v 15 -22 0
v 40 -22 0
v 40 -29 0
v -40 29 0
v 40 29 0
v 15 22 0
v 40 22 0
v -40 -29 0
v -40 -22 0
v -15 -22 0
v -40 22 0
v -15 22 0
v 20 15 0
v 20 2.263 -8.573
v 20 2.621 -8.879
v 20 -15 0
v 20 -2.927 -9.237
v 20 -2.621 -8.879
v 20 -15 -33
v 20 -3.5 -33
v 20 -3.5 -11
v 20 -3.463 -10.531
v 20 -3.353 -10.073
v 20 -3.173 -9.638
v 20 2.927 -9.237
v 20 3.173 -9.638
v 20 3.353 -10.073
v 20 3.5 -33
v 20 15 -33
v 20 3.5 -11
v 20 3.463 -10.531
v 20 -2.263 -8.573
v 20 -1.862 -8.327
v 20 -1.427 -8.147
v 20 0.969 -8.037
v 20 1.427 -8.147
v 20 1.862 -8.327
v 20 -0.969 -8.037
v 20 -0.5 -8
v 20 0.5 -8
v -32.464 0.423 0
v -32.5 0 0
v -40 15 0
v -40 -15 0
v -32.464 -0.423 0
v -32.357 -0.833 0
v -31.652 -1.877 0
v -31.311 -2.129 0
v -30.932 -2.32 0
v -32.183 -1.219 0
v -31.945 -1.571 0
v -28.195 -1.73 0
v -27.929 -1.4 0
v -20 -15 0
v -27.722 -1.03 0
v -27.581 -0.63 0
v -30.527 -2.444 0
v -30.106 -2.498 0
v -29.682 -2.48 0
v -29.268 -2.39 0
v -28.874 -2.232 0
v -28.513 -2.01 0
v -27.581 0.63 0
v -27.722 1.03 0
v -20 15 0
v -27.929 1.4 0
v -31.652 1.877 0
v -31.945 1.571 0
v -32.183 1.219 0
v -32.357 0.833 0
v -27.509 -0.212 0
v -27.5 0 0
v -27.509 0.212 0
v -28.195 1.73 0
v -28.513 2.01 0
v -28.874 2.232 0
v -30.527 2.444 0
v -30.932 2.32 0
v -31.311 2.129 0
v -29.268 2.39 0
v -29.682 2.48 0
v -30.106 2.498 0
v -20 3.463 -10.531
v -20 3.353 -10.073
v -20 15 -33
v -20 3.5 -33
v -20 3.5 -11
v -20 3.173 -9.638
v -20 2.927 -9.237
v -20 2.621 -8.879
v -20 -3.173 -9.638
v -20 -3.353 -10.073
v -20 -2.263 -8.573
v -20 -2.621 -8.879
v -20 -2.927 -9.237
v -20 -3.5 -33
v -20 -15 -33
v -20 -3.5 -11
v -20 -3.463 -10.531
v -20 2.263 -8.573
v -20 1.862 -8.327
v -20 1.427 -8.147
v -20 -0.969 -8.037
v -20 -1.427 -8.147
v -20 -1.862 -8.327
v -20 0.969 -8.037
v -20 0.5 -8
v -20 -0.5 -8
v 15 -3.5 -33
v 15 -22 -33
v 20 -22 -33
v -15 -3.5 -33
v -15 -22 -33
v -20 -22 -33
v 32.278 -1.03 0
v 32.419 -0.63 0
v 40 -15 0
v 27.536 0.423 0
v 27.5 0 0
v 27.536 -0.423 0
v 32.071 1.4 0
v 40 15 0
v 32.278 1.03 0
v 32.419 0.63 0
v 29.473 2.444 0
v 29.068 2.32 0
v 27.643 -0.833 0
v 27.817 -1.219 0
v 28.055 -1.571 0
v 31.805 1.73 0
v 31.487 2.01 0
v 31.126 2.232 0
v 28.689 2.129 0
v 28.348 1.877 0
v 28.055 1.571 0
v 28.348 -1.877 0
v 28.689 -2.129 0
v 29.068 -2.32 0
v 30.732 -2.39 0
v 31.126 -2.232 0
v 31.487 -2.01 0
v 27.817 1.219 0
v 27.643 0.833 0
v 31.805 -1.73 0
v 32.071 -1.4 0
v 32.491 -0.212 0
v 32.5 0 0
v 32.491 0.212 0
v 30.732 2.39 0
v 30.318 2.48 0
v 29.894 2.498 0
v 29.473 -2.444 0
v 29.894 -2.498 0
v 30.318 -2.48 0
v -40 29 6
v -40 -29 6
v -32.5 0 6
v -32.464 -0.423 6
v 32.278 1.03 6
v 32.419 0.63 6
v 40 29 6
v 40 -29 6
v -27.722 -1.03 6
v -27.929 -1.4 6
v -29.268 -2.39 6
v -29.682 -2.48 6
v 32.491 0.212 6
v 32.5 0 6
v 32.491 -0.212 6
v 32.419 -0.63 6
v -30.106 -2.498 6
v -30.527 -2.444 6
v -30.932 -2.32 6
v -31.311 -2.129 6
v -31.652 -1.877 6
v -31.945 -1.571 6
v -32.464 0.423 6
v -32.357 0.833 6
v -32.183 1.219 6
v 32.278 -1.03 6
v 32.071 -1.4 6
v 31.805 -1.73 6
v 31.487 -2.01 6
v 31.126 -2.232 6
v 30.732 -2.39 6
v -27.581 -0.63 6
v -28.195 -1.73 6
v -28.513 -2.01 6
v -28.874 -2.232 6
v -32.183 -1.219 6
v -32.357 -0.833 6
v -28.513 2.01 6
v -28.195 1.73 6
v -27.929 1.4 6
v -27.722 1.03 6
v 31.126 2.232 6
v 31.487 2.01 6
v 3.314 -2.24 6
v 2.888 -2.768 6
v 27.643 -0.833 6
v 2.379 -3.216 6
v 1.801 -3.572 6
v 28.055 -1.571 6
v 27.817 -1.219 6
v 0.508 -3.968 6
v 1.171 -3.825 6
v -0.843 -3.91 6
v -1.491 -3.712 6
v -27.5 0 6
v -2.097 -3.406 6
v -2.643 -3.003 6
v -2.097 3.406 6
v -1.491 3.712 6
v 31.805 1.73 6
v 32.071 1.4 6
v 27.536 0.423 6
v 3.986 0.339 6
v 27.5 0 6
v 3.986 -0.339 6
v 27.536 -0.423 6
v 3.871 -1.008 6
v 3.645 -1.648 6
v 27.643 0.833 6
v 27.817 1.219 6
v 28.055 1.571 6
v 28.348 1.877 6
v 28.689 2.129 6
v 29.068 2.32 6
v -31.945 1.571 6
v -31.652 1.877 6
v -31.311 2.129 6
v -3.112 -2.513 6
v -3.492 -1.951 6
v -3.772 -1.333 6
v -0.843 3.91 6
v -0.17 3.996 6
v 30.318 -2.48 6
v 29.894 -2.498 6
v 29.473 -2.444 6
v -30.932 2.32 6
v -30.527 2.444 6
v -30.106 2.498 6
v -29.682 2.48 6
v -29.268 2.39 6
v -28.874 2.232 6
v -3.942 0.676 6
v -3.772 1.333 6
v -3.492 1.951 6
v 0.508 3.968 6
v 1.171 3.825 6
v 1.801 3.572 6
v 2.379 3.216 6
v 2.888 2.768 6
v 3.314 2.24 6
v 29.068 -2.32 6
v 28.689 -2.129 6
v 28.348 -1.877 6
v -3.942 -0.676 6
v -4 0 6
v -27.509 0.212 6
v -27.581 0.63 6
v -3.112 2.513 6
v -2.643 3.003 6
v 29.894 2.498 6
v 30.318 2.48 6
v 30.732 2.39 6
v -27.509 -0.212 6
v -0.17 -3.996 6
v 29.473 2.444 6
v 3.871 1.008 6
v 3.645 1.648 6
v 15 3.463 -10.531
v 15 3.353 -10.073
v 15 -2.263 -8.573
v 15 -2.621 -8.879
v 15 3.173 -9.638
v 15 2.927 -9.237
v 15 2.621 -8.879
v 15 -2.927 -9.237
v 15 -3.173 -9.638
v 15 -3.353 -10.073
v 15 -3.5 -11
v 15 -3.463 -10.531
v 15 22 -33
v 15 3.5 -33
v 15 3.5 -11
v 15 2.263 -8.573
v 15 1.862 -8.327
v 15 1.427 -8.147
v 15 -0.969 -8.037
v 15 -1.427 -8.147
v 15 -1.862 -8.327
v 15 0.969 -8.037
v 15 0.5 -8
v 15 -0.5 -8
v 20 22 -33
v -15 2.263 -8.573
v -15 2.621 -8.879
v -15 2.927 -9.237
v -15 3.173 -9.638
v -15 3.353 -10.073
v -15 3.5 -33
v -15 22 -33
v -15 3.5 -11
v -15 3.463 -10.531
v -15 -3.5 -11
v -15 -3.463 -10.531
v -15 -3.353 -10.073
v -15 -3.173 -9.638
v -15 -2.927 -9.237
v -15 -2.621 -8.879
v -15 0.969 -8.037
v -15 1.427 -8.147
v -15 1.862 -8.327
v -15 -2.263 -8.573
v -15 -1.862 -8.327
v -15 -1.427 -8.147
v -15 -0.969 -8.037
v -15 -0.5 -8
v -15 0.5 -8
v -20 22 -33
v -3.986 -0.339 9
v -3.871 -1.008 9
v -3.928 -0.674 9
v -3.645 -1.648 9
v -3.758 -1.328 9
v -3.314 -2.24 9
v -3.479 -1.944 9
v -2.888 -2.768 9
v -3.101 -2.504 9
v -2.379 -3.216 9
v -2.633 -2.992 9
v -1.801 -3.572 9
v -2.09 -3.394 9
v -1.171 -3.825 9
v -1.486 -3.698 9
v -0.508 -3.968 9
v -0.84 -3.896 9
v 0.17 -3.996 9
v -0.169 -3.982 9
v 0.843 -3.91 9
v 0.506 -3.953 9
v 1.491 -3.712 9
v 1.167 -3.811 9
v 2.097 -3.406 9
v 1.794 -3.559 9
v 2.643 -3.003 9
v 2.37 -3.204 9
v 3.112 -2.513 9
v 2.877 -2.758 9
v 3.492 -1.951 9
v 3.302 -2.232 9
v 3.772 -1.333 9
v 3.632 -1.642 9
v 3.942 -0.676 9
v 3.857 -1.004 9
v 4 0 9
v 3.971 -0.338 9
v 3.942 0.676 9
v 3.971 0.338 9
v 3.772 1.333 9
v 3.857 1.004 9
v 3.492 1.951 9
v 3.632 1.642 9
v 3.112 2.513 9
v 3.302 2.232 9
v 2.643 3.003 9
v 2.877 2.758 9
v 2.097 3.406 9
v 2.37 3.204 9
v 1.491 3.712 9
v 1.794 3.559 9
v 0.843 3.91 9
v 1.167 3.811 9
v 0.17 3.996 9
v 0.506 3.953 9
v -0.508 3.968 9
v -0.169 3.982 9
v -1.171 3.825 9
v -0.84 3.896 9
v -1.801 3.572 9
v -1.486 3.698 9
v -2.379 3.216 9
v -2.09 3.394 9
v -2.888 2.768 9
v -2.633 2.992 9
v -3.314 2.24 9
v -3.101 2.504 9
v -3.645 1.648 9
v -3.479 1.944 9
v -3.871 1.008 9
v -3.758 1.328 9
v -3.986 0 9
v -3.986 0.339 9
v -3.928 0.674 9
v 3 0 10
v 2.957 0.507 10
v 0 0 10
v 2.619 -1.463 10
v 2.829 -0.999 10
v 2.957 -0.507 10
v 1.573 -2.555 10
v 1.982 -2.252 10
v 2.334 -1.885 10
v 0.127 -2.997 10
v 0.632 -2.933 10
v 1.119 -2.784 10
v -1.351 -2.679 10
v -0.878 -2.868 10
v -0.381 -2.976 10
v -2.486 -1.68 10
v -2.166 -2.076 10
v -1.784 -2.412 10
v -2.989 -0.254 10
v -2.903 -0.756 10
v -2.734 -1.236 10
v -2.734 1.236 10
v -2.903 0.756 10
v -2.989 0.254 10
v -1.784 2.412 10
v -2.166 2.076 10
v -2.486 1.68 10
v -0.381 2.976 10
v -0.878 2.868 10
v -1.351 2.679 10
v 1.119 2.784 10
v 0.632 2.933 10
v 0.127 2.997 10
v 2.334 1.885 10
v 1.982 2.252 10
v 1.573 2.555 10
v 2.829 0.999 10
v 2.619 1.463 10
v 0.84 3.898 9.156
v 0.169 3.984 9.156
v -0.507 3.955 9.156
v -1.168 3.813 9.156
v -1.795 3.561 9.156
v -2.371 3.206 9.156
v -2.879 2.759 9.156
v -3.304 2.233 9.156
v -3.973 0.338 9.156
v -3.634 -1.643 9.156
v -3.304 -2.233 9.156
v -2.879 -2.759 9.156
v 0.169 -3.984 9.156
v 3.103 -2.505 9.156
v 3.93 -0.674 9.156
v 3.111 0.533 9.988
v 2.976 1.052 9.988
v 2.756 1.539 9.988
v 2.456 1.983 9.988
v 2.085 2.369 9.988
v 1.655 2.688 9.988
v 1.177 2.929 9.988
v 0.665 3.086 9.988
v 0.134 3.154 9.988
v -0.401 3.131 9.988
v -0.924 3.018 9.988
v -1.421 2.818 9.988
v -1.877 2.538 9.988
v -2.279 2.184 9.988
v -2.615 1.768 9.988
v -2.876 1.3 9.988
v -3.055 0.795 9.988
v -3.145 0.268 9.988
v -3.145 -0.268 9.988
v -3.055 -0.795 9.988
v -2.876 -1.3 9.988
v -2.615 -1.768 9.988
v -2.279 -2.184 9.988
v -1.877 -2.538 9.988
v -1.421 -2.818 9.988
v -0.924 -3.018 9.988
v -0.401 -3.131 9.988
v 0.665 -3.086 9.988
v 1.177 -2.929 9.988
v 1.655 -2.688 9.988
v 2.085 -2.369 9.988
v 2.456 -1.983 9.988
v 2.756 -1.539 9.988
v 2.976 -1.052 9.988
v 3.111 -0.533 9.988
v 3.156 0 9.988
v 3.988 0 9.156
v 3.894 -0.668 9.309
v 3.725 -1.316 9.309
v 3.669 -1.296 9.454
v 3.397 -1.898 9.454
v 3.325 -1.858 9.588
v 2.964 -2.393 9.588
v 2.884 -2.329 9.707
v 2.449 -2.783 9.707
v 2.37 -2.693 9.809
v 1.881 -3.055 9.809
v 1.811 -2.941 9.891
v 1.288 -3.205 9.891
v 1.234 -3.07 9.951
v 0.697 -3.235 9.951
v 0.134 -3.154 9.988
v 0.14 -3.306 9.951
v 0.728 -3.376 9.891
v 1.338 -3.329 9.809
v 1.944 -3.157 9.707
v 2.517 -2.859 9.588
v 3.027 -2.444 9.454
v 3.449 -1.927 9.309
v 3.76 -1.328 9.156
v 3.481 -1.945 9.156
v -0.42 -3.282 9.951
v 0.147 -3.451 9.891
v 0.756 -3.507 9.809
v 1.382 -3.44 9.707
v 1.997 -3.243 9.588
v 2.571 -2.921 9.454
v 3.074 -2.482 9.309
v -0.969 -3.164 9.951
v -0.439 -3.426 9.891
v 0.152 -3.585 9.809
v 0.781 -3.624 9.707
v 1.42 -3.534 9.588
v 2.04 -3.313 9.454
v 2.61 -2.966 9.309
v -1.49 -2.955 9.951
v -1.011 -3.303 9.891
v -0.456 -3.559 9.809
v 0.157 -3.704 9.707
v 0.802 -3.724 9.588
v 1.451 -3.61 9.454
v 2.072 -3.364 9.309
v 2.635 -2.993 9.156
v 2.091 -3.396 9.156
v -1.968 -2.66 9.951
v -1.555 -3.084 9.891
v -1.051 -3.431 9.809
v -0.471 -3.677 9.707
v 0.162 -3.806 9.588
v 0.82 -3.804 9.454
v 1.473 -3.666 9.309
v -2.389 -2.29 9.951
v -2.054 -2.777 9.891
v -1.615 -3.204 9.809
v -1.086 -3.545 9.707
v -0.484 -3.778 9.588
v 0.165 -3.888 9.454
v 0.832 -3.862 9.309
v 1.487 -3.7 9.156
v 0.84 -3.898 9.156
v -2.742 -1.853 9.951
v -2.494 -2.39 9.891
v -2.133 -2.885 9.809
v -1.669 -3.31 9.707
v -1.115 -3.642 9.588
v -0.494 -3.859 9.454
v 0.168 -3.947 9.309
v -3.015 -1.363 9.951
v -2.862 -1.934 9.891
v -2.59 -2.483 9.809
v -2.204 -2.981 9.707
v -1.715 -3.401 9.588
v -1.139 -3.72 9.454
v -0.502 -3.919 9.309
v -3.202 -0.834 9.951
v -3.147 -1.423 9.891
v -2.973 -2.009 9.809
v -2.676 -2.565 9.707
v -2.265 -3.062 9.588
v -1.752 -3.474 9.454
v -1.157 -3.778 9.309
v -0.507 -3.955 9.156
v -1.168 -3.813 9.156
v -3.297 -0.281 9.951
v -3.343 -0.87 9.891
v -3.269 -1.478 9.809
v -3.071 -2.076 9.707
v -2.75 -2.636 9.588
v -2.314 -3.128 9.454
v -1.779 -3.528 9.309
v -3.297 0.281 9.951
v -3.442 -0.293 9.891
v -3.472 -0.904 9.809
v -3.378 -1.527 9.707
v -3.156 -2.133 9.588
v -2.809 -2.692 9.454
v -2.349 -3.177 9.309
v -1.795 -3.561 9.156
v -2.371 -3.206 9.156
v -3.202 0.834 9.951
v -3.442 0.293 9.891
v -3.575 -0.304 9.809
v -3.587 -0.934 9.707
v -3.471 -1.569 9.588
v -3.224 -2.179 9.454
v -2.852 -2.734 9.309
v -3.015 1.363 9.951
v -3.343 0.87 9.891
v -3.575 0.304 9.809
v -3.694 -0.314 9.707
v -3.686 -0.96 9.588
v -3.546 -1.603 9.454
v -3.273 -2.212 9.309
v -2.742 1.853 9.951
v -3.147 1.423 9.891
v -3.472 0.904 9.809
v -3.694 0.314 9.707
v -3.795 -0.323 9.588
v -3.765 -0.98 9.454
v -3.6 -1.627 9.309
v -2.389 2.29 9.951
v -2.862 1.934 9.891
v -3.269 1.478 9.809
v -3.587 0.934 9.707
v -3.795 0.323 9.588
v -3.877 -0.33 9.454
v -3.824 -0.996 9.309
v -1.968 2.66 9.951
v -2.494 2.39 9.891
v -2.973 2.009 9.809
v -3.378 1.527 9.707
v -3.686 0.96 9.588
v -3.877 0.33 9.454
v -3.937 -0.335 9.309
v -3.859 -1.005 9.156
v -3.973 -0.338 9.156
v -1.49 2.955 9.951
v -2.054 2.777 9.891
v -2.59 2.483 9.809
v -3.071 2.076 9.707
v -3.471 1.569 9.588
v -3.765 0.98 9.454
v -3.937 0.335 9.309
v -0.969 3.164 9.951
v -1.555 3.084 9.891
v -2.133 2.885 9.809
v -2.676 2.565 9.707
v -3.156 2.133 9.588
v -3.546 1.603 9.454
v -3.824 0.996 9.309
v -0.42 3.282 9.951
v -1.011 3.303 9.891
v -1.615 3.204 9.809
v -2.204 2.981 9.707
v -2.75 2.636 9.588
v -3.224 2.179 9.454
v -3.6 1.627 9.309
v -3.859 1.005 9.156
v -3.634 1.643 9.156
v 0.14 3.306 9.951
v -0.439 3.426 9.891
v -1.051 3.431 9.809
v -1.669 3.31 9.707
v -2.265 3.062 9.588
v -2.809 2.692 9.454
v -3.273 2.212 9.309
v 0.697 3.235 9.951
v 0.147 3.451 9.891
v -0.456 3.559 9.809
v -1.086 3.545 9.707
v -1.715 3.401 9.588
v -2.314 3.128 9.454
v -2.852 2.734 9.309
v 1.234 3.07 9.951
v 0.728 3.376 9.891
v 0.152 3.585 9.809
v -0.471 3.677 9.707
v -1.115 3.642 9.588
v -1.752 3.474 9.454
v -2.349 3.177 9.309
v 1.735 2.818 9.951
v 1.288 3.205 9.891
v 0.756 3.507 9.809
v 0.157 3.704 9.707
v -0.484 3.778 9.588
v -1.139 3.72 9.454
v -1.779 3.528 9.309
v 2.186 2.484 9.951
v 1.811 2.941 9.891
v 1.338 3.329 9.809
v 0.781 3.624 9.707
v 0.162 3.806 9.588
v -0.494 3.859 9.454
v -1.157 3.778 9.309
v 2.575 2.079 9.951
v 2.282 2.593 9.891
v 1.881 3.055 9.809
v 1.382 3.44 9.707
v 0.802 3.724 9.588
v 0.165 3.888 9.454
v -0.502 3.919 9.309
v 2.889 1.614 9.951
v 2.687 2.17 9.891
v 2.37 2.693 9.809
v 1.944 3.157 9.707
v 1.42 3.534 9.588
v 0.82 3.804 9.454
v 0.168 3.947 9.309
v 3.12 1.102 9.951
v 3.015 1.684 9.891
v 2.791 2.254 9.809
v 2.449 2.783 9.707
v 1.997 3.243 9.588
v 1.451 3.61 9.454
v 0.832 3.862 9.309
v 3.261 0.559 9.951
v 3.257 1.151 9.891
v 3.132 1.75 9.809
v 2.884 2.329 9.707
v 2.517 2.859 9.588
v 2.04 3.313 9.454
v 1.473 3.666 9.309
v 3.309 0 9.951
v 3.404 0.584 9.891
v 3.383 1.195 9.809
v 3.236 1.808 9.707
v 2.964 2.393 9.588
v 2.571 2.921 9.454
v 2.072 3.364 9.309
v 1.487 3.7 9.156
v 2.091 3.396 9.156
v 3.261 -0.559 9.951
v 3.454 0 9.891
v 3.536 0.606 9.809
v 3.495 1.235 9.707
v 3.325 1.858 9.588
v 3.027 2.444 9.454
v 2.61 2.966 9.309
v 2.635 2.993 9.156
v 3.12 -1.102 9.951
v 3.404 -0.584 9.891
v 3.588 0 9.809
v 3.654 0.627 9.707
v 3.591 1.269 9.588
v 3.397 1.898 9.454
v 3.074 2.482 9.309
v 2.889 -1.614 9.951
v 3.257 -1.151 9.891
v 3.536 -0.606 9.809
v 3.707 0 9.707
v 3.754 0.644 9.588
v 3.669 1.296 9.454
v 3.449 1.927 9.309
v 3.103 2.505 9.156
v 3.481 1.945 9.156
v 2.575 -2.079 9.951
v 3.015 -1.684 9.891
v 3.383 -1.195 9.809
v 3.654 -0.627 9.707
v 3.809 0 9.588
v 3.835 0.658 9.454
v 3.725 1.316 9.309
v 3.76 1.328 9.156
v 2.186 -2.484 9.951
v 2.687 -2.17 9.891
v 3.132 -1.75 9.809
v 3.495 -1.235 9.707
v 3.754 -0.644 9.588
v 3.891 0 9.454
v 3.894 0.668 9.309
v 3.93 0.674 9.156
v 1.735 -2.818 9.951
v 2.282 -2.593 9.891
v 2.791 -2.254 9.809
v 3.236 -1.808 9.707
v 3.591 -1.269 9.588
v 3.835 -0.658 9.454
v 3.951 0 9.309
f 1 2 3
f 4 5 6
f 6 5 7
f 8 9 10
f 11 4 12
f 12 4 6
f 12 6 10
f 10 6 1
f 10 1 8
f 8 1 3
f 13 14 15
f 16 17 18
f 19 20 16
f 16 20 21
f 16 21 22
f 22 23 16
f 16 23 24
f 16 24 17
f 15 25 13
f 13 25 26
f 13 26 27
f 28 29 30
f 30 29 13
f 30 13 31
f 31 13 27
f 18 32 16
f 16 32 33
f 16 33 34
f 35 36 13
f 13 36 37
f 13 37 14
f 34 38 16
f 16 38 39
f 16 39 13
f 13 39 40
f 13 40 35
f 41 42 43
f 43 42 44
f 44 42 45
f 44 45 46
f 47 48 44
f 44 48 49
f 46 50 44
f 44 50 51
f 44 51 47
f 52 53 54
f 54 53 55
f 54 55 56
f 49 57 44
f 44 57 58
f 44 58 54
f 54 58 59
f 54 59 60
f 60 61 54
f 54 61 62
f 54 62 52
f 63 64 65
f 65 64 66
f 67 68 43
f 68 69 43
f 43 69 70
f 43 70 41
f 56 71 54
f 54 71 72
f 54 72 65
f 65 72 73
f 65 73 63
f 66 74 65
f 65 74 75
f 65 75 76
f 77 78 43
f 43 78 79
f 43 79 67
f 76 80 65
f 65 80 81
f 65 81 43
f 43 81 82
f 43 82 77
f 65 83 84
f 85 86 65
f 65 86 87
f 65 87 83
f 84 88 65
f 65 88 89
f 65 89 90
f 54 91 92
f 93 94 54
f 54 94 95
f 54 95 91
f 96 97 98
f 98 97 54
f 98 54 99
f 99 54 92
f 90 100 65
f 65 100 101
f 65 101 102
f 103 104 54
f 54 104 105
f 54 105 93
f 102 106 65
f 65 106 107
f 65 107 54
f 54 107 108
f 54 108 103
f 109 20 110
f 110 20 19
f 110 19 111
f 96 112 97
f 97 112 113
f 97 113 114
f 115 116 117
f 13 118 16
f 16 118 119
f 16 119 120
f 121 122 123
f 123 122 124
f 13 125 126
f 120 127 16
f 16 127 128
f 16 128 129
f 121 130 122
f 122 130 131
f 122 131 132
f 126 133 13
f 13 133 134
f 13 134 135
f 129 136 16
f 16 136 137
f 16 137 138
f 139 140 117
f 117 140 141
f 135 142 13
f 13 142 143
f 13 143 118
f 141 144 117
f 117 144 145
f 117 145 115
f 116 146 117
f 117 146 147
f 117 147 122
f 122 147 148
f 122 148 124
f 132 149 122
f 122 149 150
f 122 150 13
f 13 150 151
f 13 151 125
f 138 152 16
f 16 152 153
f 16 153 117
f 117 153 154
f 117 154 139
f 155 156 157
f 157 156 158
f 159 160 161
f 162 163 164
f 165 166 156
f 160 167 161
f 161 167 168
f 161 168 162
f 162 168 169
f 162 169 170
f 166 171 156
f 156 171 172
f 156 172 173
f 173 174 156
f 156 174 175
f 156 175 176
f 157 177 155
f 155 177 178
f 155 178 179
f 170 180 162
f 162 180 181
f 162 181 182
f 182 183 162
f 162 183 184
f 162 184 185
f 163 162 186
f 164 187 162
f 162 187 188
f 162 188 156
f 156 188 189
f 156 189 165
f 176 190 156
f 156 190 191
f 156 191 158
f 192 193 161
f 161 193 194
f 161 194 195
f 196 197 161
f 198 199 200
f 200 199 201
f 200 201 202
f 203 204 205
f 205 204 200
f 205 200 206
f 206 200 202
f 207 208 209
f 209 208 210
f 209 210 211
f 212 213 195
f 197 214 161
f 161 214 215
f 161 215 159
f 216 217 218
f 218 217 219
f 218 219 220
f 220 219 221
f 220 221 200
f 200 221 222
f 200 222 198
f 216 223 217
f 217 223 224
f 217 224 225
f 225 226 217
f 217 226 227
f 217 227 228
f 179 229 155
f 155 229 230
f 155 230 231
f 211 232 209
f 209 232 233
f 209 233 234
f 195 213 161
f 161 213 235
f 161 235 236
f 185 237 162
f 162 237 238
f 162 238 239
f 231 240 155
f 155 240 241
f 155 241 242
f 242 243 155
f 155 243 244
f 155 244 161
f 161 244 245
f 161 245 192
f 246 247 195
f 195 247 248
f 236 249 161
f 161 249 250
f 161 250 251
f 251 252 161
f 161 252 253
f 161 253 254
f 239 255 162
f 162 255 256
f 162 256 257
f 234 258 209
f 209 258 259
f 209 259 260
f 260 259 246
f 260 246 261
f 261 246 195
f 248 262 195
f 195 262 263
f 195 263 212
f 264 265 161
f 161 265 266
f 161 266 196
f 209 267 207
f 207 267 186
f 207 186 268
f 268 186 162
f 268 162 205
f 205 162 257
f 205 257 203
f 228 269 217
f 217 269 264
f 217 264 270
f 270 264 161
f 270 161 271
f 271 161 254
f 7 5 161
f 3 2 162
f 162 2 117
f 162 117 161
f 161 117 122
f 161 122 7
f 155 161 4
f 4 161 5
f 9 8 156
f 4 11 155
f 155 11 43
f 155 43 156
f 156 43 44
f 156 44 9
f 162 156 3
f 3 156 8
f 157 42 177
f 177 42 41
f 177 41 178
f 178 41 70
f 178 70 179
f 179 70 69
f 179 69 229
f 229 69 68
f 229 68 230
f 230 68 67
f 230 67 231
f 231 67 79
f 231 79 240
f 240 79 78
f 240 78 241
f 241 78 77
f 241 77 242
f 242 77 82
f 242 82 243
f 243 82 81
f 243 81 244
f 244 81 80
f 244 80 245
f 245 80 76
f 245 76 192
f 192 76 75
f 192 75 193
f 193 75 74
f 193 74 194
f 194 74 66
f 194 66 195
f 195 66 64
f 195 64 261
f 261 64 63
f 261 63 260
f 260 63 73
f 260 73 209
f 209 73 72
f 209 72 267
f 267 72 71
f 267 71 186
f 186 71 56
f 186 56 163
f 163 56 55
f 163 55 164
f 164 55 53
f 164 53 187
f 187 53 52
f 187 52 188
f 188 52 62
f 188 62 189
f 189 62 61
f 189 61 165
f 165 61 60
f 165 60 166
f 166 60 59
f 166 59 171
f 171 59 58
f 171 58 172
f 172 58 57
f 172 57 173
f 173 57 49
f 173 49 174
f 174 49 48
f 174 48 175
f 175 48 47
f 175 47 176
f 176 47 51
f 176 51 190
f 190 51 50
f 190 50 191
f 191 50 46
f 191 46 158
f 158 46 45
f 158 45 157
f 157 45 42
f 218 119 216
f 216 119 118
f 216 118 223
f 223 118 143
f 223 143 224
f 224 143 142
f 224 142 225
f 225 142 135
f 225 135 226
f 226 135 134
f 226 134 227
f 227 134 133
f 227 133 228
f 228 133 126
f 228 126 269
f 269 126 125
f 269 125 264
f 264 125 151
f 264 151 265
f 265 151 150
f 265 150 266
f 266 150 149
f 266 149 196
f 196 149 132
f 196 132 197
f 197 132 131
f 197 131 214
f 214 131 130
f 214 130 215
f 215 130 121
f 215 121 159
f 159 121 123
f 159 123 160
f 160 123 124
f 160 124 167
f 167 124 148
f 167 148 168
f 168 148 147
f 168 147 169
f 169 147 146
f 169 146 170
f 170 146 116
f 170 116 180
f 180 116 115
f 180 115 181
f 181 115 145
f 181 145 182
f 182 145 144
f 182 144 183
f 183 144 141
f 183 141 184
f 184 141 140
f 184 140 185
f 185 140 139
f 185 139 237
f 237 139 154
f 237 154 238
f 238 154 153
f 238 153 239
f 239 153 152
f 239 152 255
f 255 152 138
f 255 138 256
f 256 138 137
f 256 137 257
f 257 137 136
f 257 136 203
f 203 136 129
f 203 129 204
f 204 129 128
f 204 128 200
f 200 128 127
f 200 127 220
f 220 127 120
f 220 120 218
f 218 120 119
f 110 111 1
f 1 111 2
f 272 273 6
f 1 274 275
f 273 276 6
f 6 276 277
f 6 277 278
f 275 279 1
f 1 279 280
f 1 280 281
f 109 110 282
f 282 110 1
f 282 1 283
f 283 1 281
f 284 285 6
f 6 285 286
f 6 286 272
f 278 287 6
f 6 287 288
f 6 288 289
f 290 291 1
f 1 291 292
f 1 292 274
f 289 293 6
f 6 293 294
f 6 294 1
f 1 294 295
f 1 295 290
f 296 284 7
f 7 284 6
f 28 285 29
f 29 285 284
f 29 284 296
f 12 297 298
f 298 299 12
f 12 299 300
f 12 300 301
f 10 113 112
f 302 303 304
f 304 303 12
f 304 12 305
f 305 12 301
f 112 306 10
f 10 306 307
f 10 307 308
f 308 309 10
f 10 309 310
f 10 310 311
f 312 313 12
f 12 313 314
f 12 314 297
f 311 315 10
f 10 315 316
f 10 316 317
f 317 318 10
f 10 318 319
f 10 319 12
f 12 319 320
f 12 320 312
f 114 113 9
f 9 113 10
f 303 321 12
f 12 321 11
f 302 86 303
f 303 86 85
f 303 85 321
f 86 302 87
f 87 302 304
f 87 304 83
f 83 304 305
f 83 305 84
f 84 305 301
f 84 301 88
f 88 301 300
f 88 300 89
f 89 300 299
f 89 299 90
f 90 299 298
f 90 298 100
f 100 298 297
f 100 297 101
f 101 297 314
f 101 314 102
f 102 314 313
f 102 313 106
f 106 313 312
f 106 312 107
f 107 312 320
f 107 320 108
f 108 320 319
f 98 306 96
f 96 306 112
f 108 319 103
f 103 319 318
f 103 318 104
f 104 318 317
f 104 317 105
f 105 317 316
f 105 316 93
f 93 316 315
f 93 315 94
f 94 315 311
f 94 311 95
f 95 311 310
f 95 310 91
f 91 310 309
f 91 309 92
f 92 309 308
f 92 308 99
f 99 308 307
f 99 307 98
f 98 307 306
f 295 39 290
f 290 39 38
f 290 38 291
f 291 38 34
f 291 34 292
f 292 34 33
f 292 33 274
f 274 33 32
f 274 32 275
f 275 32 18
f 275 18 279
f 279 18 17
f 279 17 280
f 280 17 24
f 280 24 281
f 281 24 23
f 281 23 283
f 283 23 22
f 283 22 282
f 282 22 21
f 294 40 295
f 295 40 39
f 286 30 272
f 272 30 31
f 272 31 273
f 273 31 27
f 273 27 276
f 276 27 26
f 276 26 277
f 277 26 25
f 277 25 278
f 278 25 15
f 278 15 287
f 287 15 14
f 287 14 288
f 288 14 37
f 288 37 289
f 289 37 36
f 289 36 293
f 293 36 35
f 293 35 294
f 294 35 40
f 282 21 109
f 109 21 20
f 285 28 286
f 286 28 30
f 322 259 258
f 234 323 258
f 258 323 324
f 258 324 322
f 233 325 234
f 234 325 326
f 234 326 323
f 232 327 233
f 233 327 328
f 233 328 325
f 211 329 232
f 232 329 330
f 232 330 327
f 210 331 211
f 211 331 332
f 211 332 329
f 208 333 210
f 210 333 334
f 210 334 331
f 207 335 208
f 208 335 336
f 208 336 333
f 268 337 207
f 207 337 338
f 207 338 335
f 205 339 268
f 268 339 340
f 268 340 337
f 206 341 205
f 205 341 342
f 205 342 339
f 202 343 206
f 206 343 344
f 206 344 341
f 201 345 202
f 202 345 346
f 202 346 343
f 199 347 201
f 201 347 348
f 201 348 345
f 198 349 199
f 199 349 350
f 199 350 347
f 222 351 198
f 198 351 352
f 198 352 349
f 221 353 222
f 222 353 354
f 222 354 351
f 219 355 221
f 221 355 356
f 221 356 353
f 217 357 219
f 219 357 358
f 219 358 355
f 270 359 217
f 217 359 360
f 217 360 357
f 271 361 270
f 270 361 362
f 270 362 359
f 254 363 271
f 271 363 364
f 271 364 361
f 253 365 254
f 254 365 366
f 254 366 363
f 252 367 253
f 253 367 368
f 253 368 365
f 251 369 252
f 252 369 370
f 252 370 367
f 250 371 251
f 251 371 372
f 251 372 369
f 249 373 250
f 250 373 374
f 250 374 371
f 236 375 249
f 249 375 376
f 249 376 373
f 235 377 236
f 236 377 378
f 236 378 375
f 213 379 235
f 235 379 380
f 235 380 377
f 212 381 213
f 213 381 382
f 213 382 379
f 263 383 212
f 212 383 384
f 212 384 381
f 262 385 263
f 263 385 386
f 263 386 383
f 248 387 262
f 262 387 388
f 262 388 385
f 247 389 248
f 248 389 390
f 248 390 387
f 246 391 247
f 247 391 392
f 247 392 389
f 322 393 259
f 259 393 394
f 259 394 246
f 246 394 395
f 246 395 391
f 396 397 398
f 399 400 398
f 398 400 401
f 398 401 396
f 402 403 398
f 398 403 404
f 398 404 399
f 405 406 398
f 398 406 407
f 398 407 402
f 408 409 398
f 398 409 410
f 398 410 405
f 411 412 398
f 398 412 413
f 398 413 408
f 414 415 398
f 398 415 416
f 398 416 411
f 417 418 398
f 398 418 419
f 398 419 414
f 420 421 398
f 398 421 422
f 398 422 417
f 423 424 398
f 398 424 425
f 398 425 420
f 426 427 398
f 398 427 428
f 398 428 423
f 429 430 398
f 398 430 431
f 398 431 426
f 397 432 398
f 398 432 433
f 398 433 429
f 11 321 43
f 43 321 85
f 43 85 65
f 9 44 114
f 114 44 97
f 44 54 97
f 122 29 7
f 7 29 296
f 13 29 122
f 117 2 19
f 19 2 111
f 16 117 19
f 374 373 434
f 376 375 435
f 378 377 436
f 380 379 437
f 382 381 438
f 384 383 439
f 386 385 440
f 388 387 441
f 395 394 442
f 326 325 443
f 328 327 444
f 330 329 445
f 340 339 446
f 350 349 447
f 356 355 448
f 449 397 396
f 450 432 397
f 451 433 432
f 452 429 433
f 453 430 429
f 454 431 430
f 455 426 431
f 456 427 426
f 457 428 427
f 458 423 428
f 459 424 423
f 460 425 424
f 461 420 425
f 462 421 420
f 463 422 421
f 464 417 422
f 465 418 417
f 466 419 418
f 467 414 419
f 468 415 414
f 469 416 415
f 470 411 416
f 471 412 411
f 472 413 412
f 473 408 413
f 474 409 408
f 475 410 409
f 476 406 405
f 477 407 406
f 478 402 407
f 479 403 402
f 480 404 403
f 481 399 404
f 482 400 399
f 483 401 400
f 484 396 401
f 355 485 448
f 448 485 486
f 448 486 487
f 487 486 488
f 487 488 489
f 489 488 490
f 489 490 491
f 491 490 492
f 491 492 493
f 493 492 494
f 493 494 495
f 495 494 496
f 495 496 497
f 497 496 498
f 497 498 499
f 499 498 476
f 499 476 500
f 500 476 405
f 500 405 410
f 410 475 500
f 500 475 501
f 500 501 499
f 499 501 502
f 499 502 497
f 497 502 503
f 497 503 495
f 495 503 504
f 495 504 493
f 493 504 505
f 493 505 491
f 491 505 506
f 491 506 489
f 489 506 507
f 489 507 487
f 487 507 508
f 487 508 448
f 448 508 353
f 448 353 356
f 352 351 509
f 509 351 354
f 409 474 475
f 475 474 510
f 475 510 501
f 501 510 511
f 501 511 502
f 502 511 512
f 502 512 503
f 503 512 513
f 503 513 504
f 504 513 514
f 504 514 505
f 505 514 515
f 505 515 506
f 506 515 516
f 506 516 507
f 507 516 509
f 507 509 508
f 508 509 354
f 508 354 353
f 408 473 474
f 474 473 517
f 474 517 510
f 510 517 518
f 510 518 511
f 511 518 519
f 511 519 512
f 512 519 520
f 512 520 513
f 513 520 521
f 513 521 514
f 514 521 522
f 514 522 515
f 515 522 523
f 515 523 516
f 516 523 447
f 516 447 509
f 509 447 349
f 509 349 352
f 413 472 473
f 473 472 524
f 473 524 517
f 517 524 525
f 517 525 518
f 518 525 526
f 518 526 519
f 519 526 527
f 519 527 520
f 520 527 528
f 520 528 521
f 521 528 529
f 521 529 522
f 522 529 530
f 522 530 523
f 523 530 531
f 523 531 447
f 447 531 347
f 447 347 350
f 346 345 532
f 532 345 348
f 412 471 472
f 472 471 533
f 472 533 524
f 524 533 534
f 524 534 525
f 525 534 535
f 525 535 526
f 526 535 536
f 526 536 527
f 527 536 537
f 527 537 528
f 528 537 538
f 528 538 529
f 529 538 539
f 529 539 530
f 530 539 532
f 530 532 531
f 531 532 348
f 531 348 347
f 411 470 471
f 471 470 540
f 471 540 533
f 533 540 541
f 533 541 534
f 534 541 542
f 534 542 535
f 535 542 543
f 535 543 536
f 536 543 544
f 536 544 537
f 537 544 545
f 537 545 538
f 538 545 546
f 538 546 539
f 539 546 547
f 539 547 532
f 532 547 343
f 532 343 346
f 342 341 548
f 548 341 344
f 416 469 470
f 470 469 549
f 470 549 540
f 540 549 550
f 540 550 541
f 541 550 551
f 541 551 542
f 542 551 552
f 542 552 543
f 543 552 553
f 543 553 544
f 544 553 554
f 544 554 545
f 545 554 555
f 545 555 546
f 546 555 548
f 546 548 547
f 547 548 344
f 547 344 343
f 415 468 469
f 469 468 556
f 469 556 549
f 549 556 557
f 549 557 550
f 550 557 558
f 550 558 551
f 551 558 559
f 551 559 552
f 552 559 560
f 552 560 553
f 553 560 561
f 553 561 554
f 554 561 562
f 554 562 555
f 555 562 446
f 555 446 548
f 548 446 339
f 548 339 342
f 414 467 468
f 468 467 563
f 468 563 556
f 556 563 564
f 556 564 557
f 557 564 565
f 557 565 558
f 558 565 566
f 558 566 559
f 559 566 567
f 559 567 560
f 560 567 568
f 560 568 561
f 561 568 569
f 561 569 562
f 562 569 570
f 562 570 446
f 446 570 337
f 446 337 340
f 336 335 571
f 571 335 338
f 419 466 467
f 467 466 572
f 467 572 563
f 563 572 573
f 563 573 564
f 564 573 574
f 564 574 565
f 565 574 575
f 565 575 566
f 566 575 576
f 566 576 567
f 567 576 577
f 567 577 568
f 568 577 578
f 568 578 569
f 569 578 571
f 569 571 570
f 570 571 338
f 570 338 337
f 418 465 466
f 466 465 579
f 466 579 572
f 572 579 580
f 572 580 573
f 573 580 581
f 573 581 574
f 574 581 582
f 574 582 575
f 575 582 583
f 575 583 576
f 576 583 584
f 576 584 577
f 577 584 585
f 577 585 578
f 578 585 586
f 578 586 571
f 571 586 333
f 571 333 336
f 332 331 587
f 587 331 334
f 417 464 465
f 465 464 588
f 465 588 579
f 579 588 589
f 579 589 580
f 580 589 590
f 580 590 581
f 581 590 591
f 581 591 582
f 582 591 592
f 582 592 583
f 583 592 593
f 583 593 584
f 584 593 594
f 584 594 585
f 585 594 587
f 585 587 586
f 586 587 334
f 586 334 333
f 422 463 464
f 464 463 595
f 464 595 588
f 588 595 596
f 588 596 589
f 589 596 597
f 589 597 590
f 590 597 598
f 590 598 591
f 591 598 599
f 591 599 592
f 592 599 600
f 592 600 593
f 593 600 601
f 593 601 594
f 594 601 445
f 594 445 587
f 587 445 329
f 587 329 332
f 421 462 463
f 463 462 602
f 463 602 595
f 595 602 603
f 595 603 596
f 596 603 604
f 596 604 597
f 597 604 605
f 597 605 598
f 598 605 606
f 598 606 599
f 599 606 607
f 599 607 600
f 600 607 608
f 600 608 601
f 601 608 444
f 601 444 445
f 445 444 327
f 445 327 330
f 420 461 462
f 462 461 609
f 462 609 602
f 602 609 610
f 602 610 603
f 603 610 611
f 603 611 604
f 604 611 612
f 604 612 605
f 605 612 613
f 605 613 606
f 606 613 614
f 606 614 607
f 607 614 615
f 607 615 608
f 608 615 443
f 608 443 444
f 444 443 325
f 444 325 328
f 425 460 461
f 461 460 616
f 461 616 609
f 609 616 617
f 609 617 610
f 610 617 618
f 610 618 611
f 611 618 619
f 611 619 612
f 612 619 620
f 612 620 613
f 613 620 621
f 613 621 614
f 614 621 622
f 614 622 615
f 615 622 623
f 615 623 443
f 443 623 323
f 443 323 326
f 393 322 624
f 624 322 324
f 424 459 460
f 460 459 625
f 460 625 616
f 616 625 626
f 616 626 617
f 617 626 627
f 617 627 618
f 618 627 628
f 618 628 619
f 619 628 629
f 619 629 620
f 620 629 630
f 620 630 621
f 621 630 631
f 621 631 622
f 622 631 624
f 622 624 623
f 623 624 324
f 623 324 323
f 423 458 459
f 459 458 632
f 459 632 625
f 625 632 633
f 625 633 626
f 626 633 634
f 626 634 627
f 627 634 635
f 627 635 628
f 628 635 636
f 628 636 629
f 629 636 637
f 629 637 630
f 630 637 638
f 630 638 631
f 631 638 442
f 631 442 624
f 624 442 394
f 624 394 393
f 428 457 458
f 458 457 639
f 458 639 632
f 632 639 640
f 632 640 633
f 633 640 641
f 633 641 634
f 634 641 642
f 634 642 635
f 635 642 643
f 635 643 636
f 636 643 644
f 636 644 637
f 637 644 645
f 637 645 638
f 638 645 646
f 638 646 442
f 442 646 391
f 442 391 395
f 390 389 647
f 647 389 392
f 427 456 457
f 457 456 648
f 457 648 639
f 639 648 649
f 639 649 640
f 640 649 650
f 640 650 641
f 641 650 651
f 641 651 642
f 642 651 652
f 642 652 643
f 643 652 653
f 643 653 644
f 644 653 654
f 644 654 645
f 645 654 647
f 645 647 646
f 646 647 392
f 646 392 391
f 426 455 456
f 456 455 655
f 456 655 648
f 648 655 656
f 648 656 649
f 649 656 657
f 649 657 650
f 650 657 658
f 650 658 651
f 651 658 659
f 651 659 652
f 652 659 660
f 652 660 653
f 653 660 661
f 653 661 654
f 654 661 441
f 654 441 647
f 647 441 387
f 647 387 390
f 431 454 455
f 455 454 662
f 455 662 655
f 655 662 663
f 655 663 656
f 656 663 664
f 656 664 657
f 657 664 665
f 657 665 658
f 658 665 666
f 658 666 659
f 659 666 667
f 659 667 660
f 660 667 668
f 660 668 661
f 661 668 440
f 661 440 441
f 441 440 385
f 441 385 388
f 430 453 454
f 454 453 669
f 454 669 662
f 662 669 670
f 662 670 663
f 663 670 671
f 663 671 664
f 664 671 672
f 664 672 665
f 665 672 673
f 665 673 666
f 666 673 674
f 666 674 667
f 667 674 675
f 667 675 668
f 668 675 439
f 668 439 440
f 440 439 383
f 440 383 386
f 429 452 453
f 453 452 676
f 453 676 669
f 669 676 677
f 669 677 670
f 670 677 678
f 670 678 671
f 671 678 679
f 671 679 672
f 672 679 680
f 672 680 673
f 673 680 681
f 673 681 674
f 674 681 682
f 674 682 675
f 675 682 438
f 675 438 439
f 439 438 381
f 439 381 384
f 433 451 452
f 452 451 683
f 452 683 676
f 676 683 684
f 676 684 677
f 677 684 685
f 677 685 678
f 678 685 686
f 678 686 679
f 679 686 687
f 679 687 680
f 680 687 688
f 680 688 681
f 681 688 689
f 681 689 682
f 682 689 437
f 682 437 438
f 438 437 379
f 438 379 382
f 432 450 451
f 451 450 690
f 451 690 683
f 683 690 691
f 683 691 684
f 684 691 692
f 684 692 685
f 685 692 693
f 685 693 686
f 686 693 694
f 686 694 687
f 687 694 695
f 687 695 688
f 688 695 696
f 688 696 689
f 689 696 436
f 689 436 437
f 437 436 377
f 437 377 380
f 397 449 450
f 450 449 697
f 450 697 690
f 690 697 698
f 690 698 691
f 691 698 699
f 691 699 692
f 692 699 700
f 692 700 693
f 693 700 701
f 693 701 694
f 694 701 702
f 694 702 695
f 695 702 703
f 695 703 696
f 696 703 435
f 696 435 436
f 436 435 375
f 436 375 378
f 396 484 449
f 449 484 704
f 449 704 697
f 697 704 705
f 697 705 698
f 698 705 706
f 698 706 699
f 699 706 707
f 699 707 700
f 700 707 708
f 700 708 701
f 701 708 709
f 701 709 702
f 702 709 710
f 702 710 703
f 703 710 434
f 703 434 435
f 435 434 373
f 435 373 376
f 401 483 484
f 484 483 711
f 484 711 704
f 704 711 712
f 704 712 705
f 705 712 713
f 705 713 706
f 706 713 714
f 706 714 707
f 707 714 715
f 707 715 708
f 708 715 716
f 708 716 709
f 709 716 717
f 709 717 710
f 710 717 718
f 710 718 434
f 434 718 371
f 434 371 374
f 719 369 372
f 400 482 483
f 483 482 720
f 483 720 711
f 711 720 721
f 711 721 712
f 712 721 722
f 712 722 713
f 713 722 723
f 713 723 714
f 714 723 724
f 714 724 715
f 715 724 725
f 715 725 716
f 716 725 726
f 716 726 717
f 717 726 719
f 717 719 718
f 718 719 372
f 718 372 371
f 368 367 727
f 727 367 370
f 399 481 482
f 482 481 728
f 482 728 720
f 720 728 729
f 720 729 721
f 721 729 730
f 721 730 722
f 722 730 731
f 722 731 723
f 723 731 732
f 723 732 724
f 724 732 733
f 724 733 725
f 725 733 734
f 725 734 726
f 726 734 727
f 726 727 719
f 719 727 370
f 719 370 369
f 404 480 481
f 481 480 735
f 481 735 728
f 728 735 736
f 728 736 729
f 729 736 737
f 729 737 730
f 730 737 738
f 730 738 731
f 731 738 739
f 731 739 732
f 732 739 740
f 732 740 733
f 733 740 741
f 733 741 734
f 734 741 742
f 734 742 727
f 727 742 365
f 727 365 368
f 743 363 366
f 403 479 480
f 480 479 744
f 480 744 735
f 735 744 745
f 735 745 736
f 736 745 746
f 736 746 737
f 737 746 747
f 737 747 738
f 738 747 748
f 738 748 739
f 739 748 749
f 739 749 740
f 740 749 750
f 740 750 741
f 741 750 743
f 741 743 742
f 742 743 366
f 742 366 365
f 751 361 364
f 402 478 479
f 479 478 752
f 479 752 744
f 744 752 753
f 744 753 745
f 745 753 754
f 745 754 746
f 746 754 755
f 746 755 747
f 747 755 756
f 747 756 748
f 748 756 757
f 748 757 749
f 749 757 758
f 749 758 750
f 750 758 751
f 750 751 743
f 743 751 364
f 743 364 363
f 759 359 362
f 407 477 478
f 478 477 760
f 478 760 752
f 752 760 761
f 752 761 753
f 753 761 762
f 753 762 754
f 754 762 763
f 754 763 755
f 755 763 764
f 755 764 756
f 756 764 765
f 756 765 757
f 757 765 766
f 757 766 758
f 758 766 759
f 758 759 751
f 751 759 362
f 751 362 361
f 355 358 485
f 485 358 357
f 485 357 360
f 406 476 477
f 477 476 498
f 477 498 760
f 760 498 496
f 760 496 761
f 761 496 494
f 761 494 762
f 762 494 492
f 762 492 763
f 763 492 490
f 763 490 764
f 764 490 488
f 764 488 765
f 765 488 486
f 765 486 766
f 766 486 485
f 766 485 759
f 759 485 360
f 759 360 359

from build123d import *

# Parameters (mm, degrees)
SKETCH_2_W               = 80
SKETCH_2_H               = 58
SKETCH_2_R               = 2.5
EXTRUDE_1_DEPTH          = 6
SKETCH_3_W               = 5
SKETCH_3_H               = 44
EXTRUDE_2_DEPTH          = 33
CUT_EXTRUDE_1_DEPTH      = 75.36396977
CUT_EXTRUDE_1_DEPTH_BACK = 75.36396977
SKETCH_12_R              = 4
EXTRUDE_3_DEPTH          = 4
RIB_10_REACH             = 70.007
SKETCH_13_WALL_W         = 176.60226785
SKETCH_13_WALL_H         = 7
RIB_12_REACH             = 70.007
SKETCH_16_WALL_W         = 176.60226785
SKETCH_16_WALL_H         = 7
FILLET_2_R               = 1


with BuildPart() as part:
    # 스케치2 → 보스-돌출1 (new body)
    with BuildSketch(Plane.XY):
        Rectangle(SKETCH_2_W, SKETCH_2_H)
        with Locations((-30, 0)):
            Circle(SKETCH_2_R, mode=Mode.SUBTRACT)
        with Locations((30, 0)):
            Circle(SKETCH_2_R, mode=Mode.SUBTRACT)
    extrude(amount=EXTRUDE_1_DEPTH)

    # 스케치3 → 보스-돌출2 (add)
    with BuildSketch(Plane(origin=(0, 0, 0), x_dir=(-1, 0, 0), z_dir=(0, 0, -1))):
        with Locations((-17.5, 0)):
            Rectangle(SKETCH_3_W, SKETCH_3_H)
        with Locations((17.5, 0)):
            Rectangle(SKETCH_3_W, SKETCH_3_H)
    extrude(amount=EXTRUDE_2_DEPTH)

    # 스케치11 → 컷-돌출1 (cut, two sides: drawn at the far end of the back side and taken through both)
    with BuildSketch(Plane(origin=(20, 0, 0), x_dir=(0, 0, -1), z_dir=(1, 0, 0)).offset(-CUT_EXTRUDE_1_DEPTH_BACK)):
        with BuildLine():
            Line((33, -3.5), (11, -3.5))
            ThreePointArc((11, -3.5), (8.878679656, -2.621320344), (8, -0.5))
            Line((8, -0.5), (8, 0.5))
            ThreePointArc((8, 0.5), (8.878679656, 2.621320344), (11, 3.5))
            Line((11, 3.5), (33, 3.5))
            Line((33, 3.5), (33, -3.5))
        make_face()
    extrude(amount=CUT_EXTRUDE_1_DEPTH + CUT_EXTRUDE_1_DEPTH_BACK, mode=Mode.SUBTRACT)

    # 스케치12 → 보스-돌출3 (add)
    with BuildSketch(Plane.XY.offset(6)):
        with Locations(Location((0, 0, 0), (0, 0, 180))):
            Circle(SKETCH_12_R)
    extrude(amount=EXTRUDE_3_DEPTH)

    # 스케치13 wall → 보강대10 (add, up to next)
    with BuildSketch(Plane(origin=(-30, 15, -16.5), x_dir=(-0.518301716093, 0, 0.855197831554), z_dir=(0.855197831554, 0, 0.518301716093)), mode=Mode.PRIVATE) as rib_10_sk1:
        with Locations((0, -3.5)):
            Rectangle(SKETCH_13_WALL_W, SKETCH_13_WALL_H)
    rib_10_tool1 = extrude(rib_10_sk1.sketch, amount=RIB_10_REACH, mode=Mode.PRIVATE) - part.part
    rib_10 = rib_10_tool1.solids().sort_by_distance((-30, 15, -16.5))[0]
    add(rib_10)

    # 스케치16 wall → 보강대12 (add, up to next)
    with BuildSketch(Plane(origin=(-30, -15, -16.5), x_dir=(-0.518301716093, 0, 0.855197831554), z_dir=(0.855197831554, 0, 0.518301716093)), mode=Mode.PRIVATE) as rib_12_sk1:
        with Locations((0, 3.5)):
            Rectangle(SKETCH_16_WALL_W, SKETCH_16_WALL_H)
    rib_12_tool1 = extrude(rib_12_sk1.sketch, amount=RIB_12_REACH, mode=Mode.PRIVATE) - part.part
    rib_12 = rib_12_tool1.solids().sort_by_distance((-30, -15, -16.5))[0]
    add(rib_12)

    # 대칭 복사1: 보강대10 across plane
    add(rib_10.mirror(Plane(origin=(0, 0, 0), x_dir=(0, 0, 1), z_dir=(1, 0, 0))))

    # 대칭 복사2: 보강대12 across plane
    add(rib_12.mirror(Plane(origin=(0, 0, 0), x_dir=(0, 0, 1), z_dir=(1, 0, 0))))

    # 필렛2
    fillet_2_edges = [part.edges().sort_by_distance(p)[0] for p in [
        (4, 0, 10),
    ]]
    fillet(fillet_2_edges, radius=FILLET_2_R)


solid = part.part
